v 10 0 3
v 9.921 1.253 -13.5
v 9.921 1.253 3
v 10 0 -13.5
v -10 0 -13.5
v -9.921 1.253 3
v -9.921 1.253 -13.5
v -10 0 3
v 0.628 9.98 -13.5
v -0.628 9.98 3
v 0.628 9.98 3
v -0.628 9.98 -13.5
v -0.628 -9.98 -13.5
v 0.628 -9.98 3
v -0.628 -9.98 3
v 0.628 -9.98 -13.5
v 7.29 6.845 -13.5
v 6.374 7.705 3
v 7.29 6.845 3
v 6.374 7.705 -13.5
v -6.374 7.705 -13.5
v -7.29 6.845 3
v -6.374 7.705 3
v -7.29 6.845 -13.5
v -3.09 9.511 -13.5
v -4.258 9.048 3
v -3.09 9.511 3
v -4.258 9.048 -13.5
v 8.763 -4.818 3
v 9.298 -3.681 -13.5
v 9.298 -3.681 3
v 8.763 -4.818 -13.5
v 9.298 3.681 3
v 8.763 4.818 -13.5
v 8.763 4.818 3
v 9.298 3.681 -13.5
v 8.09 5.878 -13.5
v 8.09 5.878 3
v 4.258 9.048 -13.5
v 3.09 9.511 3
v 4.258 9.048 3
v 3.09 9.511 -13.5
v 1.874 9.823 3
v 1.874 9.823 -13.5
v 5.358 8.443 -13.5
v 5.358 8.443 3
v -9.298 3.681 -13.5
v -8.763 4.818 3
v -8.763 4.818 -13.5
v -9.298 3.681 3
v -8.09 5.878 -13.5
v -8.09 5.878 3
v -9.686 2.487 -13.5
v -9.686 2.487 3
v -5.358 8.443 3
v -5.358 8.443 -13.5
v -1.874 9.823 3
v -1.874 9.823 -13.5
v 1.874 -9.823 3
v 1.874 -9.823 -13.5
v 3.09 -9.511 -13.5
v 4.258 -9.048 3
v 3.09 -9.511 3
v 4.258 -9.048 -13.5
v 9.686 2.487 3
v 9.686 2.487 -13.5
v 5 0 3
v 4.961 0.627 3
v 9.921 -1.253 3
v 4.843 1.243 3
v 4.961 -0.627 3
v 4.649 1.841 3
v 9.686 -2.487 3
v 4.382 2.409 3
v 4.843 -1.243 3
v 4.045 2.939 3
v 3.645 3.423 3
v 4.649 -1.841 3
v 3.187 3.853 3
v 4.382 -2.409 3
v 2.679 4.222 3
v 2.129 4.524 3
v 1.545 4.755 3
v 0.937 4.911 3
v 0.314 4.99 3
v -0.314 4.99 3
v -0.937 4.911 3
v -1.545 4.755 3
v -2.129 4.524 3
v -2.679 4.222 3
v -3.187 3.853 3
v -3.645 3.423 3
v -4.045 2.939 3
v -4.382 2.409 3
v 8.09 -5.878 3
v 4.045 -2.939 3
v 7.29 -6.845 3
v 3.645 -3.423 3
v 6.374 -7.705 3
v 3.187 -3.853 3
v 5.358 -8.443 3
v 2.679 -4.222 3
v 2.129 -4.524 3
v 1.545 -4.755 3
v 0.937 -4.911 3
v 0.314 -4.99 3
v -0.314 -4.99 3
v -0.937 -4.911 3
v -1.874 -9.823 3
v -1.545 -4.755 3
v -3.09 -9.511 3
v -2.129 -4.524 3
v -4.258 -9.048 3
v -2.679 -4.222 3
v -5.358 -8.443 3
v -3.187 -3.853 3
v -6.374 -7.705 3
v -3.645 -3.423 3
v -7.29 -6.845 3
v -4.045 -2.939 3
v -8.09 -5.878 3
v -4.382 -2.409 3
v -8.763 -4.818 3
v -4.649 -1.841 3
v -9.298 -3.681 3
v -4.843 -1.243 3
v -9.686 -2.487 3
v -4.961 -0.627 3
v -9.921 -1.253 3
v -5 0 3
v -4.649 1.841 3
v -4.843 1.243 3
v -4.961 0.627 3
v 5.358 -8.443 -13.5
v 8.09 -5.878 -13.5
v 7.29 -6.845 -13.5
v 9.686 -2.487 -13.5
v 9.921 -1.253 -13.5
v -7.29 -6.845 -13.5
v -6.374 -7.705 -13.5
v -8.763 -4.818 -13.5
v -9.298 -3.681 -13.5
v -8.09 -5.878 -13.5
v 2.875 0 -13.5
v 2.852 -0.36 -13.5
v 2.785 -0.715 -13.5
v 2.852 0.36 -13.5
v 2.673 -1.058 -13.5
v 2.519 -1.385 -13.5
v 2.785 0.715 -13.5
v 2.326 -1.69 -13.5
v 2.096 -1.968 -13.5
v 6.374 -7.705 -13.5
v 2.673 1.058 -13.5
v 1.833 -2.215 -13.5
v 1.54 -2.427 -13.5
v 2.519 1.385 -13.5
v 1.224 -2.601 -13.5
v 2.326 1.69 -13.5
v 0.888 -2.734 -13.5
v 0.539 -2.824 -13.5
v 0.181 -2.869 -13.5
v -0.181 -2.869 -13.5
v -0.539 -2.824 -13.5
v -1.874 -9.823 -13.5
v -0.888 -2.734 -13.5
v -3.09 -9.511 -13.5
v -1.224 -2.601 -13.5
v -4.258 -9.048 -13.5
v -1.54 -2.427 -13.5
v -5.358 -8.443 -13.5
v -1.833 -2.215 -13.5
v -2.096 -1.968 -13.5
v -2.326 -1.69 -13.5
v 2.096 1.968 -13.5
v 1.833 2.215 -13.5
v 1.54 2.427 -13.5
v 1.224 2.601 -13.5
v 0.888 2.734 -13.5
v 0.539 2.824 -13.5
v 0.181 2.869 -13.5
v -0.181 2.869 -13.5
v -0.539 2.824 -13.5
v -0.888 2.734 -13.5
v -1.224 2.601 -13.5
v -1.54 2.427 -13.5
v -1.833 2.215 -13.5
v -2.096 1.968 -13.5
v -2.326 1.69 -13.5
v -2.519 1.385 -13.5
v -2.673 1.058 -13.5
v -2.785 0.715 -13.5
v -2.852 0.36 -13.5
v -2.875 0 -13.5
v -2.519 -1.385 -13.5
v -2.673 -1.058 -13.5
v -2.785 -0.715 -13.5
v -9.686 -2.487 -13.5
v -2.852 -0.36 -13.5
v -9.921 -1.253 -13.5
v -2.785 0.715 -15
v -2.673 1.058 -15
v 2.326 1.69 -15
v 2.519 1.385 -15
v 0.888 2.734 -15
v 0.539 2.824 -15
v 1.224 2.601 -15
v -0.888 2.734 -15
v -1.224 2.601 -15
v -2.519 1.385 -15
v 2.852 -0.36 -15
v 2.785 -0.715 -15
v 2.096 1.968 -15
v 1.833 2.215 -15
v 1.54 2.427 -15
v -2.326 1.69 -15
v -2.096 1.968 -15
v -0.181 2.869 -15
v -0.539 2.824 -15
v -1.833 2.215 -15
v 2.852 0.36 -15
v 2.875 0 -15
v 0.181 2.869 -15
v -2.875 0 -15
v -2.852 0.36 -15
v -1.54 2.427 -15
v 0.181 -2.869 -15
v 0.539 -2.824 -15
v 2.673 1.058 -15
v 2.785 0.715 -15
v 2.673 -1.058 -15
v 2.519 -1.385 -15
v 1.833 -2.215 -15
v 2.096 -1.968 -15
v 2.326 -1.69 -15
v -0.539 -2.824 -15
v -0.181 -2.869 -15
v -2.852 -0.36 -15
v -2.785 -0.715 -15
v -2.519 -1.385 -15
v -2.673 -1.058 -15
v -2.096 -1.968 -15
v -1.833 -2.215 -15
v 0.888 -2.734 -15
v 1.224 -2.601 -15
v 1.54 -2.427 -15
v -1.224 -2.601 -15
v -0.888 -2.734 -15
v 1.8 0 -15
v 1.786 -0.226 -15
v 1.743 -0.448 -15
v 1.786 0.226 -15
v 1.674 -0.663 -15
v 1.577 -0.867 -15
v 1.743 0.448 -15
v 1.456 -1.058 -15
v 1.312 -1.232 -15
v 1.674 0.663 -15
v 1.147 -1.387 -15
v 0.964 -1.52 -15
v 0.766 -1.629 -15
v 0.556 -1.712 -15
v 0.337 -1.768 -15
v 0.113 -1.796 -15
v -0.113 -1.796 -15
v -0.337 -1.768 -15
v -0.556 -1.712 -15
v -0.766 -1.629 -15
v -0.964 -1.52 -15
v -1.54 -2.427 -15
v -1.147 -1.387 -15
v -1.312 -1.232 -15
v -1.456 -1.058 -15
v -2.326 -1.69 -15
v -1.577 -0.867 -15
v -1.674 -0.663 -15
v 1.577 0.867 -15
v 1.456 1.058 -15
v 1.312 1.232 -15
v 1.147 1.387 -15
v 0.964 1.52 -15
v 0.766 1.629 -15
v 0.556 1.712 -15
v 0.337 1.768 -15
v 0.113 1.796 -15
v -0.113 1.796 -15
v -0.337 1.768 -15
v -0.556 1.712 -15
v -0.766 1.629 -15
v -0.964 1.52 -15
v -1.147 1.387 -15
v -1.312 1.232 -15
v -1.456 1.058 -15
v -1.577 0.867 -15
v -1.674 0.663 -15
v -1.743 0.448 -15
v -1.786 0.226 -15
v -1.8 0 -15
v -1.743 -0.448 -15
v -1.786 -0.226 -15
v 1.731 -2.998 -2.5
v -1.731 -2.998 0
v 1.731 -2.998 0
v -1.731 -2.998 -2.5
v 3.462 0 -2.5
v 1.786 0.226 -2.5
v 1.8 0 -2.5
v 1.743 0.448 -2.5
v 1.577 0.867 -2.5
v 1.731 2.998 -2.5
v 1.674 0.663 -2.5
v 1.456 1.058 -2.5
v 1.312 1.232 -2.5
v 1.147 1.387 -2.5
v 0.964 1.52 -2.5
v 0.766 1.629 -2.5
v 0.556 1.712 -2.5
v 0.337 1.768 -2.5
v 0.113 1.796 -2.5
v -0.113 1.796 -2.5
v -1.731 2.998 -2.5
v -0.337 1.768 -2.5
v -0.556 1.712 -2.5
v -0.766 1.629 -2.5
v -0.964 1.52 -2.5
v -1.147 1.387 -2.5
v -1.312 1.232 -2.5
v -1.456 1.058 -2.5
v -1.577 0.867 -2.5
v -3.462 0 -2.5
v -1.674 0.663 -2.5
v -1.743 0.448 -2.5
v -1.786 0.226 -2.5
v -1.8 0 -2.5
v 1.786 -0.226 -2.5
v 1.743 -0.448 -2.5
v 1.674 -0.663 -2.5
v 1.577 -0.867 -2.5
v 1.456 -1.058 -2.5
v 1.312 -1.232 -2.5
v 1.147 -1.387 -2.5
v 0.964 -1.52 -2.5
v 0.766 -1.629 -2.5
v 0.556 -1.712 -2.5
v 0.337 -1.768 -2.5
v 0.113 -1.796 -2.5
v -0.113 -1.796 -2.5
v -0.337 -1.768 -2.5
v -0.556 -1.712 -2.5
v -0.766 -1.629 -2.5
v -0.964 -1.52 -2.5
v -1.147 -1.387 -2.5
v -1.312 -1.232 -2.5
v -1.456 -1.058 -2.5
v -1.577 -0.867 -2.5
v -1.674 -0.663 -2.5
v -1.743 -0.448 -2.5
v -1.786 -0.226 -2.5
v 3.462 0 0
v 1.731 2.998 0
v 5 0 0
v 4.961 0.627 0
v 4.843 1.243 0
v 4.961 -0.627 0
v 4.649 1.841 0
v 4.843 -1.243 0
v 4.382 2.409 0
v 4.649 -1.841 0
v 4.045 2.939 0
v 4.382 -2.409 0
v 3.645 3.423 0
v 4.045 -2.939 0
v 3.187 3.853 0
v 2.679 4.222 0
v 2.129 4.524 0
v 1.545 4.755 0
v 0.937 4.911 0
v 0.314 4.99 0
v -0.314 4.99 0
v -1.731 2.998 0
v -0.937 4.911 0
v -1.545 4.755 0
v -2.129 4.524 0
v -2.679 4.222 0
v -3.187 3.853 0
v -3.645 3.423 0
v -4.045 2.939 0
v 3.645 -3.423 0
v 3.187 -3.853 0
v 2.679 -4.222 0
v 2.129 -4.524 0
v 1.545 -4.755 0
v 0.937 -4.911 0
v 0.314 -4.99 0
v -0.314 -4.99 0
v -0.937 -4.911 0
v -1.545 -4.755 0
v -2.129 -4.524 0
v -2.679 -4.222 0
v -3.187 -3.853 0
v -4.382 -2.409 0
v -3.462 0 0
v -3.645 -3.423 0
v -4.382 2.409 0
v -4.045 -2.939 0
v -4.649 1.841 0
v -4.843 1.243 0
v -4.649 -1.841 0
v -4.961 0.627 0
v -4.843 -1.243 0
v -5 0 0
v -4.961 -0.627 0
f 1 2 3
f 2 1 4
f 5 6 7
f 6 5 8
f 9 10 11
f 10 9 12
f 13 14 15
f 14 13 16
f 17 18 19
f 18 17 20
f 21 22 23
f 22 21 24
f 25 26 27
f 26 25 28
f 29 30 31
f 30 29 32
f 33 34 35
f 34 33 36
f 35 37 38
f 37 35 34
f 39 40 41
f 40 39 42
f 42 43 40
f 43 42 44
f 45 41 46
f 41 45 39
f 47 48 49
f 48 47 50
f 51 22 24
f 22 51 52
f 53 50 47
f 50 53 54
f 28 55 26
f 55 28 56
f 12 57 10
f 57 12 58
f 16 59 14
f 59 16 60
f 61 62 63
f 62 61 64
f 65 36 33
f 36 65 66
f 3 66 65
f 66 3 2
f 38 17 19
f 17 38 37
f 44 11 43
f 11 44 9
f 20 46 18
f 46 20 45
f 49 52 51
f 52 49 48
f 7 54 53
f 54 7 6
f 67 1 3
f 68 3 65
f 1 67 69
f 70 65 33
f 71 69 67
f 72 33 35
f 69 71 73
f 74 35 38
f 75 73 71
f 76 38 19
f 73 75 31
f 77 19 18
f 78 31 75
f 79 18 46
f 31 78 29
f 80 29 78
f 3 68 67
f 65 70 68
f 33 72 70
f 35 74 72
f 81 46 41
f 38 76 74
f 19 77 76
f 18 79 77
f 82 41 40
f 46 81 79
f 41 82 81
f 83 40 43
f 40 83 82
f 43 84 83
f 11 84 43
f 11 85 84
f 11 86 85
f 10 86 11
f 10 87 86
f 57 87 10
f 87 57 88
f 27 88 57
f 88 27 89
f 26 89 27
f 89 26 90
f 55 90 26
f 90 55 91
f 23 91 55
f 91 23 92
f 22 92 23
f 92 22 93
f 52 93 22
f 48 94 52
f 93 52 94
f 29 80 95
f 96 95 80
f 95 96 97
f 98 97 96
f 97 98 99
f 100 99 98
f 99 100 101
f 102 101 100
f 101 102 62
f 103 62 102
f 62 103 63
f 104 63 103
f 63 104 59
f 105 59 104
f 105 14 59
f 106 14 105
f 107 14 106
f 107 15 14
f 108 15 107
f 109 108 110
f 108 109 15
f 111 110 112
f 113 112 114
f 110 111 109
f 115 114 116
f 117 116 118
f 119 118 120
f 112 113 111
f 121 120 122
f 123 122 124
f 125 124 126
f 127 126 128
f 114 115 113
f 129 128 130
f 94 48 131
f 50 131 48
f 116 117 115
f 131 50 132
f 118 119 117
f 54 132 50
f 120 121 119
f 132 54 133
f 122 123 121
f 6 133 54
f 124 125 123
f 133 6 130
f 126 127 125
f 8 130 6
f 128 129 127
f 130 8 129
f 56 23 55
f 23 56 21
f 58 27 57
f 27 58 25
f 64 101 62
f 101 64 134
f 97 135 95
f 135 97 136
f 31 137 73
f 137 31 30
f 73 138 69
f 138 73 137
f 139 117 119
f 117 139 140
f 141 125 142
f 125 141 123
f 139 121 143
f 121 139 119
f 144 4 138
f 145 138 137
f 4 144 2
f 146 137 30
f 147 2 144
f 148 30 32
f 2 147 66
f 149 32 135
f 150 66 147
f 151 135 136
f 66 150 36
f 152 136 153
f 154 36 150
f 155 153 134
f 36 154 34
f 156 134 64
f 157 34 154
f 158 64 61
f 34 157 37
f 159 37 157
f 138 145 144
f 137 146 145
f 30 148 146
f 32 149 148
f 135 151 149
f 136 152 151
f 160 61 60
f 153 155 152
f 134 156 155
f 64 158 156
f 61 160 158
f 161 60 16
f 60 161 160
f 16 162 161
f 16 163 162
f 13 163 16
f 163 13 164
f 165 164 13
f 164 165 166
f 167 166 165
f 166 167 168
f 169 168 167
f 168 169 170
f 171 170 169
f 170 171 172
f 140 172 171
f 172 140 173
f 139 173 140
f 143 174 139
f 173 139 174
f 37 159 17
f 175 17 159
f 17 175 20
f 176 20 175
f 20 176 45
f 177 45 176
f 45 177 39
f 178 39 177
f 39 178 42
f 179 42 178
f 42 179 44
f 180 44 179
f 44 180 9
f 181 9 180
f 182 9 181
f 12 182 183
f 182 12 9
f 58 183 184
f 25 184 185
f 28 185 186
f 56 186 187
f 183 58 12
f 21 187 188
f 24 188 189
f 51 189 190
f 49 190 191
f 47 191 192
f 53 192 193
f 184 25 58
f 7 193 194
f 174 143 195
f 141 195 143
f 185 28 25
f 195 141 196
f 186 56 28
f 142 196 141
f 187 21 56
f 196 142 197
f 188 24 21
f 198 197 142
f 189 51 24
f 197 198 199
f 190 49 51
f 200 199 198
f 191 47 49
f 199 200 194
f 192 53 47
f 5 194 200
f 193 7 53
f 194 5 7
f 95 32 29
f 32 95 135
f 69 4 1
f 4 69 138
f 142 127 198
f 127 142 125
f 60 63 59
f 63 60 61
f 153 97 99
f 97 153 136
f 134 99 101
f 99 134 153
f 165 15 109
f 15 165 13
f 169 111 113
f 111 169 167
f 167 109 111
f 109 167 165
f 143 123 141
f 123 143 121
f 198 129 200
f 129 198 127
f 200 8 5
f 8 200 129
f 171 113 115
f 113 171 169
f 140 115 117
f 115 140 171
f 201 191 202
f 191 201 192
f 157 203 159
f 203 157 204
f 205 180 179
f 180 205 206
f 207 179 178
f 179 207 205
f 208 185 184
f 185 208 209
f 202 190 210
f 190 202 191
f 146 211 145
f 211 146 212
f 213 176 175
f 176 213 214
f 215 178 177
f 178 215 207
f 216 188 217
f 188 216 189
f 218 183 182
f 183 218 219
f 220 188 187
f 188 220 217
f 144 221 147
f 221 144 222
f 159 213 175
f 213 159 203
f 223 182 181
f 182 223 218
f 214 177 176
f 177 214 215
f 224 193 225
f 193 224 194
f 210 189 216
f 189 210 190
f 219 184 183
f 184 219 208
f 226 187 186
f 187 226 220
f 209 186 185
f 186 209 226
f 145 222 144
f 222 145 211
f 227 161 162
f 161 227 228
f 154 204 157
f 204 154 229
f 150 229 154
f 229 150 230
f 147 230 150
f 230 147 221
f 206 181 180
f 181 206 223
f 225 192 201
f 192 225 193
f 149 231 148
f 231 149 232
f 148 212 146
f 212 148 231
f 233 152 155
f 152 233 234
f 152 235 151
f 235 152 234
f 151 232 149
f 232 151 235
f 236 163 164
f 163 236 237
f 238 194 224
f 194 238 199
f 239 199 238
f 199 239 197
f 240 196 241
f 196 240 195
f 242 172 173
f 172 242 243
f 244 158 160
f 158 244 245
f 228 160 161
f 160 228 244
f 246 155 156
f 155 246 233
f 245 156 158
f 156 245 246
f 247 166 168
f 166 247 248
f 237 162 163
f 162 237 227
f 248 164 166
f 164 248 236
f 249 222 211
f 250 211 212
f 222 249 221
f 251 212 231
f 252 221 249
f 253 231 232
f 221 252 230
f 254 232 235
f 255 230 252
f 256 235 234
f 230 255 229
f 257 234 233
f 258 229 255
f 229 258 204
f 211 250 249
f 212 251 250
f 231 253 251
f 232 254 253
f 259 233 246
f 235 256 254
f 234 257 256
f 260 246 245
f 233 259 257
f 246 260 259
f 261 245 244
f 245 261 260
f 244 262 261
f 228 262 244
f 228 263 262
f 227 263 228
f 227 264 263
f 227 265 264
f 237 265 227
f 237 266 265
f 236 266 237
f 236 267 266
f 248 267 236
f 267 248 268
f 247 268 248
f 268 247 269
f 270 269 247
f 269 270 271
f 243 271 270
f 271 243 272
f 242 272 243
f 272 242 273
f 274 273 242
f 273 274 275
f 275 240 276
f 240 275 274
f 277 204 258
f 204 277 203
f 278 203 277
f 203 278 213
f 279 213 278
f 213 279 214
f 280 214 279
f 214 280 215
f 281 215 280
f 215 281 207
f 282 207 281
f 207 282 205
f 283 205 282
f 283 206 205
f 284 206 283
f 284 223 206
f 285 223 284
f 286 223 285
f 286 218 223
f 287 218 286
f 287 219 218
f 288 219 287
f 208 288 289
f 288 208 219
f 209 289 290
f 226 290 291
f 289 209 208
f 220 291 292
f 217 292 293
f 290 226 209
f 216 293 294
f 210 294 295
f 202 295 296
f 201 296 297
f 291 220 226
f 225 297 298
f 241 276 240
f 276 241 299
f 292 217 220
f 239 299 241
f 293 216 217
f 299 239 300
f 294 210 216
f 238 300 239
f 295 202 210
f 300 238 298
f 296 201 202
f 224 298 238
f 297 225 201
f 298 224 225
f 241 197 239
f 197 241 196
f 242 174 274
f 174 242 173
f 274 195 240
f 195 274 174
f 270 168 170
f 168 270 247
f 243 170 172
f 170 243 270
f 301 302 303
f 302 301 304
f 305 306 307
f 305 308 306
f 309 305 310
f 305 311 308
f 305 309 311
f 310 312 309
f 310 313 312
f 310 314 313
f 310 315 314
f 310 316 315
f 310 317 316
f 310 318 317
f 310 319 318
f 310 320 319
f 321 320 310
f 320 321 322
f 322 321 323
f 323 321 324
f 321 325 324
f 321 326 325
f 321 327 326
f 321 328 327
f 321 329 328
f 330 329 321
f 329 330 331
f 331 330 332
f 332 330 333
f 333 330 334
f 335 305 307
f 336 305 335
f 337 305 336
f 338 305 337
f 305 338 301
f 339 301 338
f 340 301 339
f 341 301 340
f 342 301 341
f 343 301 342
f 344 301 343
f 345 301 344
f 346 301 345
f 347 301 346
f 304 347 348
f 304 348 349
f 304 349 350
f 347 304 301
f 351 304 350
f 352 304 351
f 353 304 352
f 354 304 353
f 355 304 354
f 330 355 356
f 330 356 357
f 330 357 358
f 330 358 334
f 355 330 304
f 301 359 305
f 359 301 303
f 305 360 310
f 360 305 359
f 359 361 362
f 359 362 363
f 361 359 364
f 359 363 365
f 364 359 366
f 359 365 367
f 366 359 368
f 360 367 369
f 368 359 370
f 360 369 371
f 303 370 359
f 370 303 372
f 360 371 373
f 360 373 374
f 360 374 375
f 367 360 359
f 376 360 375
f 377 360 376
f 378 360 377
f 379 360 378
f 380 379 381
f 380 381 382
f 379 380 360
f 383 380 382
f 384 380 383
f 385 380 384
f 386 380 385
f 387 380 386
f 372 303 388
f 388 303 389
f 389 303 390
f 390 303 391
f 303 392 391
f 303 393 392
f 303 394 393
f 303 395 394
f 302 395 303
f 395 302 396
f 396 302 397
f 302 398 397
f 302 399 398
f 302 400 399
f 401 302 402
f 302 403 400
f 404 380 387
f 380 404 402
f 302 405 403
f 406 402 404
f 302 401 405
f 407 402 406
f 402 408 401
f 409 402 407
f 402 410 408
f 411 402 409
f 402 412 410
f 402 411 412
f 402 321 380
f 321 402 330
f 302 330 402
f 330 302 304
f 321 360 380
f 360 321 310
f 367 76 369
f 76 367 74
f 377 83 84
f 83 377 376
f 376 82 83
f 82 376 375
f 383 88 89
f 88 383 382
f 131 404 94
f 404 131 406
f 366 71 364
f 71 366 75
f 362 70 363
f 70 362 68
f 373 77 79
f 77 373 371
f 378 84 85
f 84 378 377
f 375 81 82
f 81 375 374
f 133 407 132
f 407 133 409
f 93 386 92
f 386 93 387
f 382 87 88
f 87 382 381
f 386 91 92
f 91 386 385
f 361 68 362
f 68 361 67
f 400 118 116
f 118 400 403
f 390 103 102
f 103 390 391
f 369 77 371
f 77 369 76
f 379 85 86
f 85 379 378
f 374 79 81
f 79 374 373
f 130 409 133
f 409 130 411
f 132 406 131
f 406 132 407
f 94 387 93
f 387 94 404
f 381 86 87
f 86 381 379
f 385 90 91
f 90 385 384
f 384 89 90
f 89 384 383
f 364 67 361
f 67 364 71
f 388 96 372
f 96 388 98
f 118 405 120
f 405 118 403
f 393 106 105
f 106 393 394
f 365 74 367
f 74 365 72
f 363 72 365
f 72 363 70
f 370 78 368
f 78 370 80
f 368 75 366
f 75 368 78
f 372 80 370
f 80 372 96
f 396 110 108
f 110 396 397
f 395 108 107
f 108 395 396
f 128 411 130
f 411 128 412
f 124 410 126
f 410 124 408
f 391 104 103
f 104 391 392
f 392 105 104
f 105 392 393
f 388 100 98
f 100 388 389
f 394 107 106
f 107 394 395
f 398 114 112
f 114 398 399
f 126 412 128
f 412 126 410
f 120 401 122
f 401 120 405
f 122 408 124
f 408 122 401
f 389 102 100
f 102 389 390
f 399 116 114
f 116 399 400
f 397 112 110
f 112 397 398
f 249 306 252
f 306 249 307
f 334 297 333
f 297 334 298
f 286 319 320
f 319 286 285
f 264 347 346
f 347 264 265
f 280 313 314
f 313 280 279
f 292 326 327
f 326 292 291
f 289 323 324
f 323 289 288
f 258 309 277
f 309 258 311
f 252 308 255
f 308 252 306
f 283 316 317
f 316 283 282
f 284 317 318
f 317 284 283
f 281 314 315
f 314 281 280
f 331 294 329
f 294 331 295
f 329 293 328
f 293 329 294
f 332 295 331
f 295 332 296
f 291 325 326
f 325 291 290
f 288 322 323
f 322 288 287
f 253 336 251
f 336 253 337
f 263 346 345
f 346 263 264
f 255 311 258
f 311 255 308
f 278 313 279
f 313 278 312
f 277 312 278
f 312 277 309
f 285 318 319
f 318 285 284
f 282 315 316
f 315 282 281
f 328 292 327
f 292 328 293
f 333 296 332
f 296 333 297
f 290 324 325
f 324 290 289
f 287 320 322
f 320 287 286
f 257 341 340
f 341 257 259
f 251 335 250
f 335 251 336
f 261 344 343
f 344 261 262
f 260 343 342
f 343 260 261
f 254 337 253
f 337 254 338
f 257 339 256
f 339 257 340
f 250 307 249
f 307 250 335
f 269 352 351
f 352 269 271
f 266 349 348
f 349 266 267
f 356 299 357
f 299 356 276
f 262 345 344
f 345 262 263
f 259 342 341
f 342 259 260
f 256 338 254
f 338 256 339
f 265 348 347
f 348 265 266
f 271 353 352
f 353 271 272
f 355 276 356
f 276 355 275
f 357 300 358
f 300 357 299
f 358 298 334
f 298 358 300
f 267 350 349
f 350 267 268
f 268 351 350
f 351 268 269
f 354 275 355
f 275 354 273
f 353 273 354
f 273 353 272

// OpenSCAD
$fn = 50;

difference() {
	union() {
		translate(v = [0, 0, -13.5]) {
			cylinder(h = 16.5, r = 10.0);
		}
		#translate(v = [0, 0, -15.0]) {
			cylinder(h = 15, r = 2.875);
		}
	}
	union() {
		translate(v = [0, 0, 0]) {
			rotate(a = [0, 0, 0]) {
				difference() {
					union() {
						translate(v = [0, 0, -2.5]) {
							linear_extrude(height = 2.5) {
								polygon(points = [[3.4619999999999997, 0.0], [1.7310000000000003, 2.9981799479017264], [-1.7309999999999992, 2.9981799479017264], [-3.4619999999999997, 4.2397272186481365e-16], [-1.7310000000000014, -2.998179947901726], [1.7309999999999977, -2.9981799479017277]]);
							}
						}
					}
					union();
				}
			}
		}
		#cylinder(h = 3, r = 5.0);
		#translate(v = [0, 0, -100.0]) {
			cylinder(h = 200, r = 1.8);
		}
	}
}
